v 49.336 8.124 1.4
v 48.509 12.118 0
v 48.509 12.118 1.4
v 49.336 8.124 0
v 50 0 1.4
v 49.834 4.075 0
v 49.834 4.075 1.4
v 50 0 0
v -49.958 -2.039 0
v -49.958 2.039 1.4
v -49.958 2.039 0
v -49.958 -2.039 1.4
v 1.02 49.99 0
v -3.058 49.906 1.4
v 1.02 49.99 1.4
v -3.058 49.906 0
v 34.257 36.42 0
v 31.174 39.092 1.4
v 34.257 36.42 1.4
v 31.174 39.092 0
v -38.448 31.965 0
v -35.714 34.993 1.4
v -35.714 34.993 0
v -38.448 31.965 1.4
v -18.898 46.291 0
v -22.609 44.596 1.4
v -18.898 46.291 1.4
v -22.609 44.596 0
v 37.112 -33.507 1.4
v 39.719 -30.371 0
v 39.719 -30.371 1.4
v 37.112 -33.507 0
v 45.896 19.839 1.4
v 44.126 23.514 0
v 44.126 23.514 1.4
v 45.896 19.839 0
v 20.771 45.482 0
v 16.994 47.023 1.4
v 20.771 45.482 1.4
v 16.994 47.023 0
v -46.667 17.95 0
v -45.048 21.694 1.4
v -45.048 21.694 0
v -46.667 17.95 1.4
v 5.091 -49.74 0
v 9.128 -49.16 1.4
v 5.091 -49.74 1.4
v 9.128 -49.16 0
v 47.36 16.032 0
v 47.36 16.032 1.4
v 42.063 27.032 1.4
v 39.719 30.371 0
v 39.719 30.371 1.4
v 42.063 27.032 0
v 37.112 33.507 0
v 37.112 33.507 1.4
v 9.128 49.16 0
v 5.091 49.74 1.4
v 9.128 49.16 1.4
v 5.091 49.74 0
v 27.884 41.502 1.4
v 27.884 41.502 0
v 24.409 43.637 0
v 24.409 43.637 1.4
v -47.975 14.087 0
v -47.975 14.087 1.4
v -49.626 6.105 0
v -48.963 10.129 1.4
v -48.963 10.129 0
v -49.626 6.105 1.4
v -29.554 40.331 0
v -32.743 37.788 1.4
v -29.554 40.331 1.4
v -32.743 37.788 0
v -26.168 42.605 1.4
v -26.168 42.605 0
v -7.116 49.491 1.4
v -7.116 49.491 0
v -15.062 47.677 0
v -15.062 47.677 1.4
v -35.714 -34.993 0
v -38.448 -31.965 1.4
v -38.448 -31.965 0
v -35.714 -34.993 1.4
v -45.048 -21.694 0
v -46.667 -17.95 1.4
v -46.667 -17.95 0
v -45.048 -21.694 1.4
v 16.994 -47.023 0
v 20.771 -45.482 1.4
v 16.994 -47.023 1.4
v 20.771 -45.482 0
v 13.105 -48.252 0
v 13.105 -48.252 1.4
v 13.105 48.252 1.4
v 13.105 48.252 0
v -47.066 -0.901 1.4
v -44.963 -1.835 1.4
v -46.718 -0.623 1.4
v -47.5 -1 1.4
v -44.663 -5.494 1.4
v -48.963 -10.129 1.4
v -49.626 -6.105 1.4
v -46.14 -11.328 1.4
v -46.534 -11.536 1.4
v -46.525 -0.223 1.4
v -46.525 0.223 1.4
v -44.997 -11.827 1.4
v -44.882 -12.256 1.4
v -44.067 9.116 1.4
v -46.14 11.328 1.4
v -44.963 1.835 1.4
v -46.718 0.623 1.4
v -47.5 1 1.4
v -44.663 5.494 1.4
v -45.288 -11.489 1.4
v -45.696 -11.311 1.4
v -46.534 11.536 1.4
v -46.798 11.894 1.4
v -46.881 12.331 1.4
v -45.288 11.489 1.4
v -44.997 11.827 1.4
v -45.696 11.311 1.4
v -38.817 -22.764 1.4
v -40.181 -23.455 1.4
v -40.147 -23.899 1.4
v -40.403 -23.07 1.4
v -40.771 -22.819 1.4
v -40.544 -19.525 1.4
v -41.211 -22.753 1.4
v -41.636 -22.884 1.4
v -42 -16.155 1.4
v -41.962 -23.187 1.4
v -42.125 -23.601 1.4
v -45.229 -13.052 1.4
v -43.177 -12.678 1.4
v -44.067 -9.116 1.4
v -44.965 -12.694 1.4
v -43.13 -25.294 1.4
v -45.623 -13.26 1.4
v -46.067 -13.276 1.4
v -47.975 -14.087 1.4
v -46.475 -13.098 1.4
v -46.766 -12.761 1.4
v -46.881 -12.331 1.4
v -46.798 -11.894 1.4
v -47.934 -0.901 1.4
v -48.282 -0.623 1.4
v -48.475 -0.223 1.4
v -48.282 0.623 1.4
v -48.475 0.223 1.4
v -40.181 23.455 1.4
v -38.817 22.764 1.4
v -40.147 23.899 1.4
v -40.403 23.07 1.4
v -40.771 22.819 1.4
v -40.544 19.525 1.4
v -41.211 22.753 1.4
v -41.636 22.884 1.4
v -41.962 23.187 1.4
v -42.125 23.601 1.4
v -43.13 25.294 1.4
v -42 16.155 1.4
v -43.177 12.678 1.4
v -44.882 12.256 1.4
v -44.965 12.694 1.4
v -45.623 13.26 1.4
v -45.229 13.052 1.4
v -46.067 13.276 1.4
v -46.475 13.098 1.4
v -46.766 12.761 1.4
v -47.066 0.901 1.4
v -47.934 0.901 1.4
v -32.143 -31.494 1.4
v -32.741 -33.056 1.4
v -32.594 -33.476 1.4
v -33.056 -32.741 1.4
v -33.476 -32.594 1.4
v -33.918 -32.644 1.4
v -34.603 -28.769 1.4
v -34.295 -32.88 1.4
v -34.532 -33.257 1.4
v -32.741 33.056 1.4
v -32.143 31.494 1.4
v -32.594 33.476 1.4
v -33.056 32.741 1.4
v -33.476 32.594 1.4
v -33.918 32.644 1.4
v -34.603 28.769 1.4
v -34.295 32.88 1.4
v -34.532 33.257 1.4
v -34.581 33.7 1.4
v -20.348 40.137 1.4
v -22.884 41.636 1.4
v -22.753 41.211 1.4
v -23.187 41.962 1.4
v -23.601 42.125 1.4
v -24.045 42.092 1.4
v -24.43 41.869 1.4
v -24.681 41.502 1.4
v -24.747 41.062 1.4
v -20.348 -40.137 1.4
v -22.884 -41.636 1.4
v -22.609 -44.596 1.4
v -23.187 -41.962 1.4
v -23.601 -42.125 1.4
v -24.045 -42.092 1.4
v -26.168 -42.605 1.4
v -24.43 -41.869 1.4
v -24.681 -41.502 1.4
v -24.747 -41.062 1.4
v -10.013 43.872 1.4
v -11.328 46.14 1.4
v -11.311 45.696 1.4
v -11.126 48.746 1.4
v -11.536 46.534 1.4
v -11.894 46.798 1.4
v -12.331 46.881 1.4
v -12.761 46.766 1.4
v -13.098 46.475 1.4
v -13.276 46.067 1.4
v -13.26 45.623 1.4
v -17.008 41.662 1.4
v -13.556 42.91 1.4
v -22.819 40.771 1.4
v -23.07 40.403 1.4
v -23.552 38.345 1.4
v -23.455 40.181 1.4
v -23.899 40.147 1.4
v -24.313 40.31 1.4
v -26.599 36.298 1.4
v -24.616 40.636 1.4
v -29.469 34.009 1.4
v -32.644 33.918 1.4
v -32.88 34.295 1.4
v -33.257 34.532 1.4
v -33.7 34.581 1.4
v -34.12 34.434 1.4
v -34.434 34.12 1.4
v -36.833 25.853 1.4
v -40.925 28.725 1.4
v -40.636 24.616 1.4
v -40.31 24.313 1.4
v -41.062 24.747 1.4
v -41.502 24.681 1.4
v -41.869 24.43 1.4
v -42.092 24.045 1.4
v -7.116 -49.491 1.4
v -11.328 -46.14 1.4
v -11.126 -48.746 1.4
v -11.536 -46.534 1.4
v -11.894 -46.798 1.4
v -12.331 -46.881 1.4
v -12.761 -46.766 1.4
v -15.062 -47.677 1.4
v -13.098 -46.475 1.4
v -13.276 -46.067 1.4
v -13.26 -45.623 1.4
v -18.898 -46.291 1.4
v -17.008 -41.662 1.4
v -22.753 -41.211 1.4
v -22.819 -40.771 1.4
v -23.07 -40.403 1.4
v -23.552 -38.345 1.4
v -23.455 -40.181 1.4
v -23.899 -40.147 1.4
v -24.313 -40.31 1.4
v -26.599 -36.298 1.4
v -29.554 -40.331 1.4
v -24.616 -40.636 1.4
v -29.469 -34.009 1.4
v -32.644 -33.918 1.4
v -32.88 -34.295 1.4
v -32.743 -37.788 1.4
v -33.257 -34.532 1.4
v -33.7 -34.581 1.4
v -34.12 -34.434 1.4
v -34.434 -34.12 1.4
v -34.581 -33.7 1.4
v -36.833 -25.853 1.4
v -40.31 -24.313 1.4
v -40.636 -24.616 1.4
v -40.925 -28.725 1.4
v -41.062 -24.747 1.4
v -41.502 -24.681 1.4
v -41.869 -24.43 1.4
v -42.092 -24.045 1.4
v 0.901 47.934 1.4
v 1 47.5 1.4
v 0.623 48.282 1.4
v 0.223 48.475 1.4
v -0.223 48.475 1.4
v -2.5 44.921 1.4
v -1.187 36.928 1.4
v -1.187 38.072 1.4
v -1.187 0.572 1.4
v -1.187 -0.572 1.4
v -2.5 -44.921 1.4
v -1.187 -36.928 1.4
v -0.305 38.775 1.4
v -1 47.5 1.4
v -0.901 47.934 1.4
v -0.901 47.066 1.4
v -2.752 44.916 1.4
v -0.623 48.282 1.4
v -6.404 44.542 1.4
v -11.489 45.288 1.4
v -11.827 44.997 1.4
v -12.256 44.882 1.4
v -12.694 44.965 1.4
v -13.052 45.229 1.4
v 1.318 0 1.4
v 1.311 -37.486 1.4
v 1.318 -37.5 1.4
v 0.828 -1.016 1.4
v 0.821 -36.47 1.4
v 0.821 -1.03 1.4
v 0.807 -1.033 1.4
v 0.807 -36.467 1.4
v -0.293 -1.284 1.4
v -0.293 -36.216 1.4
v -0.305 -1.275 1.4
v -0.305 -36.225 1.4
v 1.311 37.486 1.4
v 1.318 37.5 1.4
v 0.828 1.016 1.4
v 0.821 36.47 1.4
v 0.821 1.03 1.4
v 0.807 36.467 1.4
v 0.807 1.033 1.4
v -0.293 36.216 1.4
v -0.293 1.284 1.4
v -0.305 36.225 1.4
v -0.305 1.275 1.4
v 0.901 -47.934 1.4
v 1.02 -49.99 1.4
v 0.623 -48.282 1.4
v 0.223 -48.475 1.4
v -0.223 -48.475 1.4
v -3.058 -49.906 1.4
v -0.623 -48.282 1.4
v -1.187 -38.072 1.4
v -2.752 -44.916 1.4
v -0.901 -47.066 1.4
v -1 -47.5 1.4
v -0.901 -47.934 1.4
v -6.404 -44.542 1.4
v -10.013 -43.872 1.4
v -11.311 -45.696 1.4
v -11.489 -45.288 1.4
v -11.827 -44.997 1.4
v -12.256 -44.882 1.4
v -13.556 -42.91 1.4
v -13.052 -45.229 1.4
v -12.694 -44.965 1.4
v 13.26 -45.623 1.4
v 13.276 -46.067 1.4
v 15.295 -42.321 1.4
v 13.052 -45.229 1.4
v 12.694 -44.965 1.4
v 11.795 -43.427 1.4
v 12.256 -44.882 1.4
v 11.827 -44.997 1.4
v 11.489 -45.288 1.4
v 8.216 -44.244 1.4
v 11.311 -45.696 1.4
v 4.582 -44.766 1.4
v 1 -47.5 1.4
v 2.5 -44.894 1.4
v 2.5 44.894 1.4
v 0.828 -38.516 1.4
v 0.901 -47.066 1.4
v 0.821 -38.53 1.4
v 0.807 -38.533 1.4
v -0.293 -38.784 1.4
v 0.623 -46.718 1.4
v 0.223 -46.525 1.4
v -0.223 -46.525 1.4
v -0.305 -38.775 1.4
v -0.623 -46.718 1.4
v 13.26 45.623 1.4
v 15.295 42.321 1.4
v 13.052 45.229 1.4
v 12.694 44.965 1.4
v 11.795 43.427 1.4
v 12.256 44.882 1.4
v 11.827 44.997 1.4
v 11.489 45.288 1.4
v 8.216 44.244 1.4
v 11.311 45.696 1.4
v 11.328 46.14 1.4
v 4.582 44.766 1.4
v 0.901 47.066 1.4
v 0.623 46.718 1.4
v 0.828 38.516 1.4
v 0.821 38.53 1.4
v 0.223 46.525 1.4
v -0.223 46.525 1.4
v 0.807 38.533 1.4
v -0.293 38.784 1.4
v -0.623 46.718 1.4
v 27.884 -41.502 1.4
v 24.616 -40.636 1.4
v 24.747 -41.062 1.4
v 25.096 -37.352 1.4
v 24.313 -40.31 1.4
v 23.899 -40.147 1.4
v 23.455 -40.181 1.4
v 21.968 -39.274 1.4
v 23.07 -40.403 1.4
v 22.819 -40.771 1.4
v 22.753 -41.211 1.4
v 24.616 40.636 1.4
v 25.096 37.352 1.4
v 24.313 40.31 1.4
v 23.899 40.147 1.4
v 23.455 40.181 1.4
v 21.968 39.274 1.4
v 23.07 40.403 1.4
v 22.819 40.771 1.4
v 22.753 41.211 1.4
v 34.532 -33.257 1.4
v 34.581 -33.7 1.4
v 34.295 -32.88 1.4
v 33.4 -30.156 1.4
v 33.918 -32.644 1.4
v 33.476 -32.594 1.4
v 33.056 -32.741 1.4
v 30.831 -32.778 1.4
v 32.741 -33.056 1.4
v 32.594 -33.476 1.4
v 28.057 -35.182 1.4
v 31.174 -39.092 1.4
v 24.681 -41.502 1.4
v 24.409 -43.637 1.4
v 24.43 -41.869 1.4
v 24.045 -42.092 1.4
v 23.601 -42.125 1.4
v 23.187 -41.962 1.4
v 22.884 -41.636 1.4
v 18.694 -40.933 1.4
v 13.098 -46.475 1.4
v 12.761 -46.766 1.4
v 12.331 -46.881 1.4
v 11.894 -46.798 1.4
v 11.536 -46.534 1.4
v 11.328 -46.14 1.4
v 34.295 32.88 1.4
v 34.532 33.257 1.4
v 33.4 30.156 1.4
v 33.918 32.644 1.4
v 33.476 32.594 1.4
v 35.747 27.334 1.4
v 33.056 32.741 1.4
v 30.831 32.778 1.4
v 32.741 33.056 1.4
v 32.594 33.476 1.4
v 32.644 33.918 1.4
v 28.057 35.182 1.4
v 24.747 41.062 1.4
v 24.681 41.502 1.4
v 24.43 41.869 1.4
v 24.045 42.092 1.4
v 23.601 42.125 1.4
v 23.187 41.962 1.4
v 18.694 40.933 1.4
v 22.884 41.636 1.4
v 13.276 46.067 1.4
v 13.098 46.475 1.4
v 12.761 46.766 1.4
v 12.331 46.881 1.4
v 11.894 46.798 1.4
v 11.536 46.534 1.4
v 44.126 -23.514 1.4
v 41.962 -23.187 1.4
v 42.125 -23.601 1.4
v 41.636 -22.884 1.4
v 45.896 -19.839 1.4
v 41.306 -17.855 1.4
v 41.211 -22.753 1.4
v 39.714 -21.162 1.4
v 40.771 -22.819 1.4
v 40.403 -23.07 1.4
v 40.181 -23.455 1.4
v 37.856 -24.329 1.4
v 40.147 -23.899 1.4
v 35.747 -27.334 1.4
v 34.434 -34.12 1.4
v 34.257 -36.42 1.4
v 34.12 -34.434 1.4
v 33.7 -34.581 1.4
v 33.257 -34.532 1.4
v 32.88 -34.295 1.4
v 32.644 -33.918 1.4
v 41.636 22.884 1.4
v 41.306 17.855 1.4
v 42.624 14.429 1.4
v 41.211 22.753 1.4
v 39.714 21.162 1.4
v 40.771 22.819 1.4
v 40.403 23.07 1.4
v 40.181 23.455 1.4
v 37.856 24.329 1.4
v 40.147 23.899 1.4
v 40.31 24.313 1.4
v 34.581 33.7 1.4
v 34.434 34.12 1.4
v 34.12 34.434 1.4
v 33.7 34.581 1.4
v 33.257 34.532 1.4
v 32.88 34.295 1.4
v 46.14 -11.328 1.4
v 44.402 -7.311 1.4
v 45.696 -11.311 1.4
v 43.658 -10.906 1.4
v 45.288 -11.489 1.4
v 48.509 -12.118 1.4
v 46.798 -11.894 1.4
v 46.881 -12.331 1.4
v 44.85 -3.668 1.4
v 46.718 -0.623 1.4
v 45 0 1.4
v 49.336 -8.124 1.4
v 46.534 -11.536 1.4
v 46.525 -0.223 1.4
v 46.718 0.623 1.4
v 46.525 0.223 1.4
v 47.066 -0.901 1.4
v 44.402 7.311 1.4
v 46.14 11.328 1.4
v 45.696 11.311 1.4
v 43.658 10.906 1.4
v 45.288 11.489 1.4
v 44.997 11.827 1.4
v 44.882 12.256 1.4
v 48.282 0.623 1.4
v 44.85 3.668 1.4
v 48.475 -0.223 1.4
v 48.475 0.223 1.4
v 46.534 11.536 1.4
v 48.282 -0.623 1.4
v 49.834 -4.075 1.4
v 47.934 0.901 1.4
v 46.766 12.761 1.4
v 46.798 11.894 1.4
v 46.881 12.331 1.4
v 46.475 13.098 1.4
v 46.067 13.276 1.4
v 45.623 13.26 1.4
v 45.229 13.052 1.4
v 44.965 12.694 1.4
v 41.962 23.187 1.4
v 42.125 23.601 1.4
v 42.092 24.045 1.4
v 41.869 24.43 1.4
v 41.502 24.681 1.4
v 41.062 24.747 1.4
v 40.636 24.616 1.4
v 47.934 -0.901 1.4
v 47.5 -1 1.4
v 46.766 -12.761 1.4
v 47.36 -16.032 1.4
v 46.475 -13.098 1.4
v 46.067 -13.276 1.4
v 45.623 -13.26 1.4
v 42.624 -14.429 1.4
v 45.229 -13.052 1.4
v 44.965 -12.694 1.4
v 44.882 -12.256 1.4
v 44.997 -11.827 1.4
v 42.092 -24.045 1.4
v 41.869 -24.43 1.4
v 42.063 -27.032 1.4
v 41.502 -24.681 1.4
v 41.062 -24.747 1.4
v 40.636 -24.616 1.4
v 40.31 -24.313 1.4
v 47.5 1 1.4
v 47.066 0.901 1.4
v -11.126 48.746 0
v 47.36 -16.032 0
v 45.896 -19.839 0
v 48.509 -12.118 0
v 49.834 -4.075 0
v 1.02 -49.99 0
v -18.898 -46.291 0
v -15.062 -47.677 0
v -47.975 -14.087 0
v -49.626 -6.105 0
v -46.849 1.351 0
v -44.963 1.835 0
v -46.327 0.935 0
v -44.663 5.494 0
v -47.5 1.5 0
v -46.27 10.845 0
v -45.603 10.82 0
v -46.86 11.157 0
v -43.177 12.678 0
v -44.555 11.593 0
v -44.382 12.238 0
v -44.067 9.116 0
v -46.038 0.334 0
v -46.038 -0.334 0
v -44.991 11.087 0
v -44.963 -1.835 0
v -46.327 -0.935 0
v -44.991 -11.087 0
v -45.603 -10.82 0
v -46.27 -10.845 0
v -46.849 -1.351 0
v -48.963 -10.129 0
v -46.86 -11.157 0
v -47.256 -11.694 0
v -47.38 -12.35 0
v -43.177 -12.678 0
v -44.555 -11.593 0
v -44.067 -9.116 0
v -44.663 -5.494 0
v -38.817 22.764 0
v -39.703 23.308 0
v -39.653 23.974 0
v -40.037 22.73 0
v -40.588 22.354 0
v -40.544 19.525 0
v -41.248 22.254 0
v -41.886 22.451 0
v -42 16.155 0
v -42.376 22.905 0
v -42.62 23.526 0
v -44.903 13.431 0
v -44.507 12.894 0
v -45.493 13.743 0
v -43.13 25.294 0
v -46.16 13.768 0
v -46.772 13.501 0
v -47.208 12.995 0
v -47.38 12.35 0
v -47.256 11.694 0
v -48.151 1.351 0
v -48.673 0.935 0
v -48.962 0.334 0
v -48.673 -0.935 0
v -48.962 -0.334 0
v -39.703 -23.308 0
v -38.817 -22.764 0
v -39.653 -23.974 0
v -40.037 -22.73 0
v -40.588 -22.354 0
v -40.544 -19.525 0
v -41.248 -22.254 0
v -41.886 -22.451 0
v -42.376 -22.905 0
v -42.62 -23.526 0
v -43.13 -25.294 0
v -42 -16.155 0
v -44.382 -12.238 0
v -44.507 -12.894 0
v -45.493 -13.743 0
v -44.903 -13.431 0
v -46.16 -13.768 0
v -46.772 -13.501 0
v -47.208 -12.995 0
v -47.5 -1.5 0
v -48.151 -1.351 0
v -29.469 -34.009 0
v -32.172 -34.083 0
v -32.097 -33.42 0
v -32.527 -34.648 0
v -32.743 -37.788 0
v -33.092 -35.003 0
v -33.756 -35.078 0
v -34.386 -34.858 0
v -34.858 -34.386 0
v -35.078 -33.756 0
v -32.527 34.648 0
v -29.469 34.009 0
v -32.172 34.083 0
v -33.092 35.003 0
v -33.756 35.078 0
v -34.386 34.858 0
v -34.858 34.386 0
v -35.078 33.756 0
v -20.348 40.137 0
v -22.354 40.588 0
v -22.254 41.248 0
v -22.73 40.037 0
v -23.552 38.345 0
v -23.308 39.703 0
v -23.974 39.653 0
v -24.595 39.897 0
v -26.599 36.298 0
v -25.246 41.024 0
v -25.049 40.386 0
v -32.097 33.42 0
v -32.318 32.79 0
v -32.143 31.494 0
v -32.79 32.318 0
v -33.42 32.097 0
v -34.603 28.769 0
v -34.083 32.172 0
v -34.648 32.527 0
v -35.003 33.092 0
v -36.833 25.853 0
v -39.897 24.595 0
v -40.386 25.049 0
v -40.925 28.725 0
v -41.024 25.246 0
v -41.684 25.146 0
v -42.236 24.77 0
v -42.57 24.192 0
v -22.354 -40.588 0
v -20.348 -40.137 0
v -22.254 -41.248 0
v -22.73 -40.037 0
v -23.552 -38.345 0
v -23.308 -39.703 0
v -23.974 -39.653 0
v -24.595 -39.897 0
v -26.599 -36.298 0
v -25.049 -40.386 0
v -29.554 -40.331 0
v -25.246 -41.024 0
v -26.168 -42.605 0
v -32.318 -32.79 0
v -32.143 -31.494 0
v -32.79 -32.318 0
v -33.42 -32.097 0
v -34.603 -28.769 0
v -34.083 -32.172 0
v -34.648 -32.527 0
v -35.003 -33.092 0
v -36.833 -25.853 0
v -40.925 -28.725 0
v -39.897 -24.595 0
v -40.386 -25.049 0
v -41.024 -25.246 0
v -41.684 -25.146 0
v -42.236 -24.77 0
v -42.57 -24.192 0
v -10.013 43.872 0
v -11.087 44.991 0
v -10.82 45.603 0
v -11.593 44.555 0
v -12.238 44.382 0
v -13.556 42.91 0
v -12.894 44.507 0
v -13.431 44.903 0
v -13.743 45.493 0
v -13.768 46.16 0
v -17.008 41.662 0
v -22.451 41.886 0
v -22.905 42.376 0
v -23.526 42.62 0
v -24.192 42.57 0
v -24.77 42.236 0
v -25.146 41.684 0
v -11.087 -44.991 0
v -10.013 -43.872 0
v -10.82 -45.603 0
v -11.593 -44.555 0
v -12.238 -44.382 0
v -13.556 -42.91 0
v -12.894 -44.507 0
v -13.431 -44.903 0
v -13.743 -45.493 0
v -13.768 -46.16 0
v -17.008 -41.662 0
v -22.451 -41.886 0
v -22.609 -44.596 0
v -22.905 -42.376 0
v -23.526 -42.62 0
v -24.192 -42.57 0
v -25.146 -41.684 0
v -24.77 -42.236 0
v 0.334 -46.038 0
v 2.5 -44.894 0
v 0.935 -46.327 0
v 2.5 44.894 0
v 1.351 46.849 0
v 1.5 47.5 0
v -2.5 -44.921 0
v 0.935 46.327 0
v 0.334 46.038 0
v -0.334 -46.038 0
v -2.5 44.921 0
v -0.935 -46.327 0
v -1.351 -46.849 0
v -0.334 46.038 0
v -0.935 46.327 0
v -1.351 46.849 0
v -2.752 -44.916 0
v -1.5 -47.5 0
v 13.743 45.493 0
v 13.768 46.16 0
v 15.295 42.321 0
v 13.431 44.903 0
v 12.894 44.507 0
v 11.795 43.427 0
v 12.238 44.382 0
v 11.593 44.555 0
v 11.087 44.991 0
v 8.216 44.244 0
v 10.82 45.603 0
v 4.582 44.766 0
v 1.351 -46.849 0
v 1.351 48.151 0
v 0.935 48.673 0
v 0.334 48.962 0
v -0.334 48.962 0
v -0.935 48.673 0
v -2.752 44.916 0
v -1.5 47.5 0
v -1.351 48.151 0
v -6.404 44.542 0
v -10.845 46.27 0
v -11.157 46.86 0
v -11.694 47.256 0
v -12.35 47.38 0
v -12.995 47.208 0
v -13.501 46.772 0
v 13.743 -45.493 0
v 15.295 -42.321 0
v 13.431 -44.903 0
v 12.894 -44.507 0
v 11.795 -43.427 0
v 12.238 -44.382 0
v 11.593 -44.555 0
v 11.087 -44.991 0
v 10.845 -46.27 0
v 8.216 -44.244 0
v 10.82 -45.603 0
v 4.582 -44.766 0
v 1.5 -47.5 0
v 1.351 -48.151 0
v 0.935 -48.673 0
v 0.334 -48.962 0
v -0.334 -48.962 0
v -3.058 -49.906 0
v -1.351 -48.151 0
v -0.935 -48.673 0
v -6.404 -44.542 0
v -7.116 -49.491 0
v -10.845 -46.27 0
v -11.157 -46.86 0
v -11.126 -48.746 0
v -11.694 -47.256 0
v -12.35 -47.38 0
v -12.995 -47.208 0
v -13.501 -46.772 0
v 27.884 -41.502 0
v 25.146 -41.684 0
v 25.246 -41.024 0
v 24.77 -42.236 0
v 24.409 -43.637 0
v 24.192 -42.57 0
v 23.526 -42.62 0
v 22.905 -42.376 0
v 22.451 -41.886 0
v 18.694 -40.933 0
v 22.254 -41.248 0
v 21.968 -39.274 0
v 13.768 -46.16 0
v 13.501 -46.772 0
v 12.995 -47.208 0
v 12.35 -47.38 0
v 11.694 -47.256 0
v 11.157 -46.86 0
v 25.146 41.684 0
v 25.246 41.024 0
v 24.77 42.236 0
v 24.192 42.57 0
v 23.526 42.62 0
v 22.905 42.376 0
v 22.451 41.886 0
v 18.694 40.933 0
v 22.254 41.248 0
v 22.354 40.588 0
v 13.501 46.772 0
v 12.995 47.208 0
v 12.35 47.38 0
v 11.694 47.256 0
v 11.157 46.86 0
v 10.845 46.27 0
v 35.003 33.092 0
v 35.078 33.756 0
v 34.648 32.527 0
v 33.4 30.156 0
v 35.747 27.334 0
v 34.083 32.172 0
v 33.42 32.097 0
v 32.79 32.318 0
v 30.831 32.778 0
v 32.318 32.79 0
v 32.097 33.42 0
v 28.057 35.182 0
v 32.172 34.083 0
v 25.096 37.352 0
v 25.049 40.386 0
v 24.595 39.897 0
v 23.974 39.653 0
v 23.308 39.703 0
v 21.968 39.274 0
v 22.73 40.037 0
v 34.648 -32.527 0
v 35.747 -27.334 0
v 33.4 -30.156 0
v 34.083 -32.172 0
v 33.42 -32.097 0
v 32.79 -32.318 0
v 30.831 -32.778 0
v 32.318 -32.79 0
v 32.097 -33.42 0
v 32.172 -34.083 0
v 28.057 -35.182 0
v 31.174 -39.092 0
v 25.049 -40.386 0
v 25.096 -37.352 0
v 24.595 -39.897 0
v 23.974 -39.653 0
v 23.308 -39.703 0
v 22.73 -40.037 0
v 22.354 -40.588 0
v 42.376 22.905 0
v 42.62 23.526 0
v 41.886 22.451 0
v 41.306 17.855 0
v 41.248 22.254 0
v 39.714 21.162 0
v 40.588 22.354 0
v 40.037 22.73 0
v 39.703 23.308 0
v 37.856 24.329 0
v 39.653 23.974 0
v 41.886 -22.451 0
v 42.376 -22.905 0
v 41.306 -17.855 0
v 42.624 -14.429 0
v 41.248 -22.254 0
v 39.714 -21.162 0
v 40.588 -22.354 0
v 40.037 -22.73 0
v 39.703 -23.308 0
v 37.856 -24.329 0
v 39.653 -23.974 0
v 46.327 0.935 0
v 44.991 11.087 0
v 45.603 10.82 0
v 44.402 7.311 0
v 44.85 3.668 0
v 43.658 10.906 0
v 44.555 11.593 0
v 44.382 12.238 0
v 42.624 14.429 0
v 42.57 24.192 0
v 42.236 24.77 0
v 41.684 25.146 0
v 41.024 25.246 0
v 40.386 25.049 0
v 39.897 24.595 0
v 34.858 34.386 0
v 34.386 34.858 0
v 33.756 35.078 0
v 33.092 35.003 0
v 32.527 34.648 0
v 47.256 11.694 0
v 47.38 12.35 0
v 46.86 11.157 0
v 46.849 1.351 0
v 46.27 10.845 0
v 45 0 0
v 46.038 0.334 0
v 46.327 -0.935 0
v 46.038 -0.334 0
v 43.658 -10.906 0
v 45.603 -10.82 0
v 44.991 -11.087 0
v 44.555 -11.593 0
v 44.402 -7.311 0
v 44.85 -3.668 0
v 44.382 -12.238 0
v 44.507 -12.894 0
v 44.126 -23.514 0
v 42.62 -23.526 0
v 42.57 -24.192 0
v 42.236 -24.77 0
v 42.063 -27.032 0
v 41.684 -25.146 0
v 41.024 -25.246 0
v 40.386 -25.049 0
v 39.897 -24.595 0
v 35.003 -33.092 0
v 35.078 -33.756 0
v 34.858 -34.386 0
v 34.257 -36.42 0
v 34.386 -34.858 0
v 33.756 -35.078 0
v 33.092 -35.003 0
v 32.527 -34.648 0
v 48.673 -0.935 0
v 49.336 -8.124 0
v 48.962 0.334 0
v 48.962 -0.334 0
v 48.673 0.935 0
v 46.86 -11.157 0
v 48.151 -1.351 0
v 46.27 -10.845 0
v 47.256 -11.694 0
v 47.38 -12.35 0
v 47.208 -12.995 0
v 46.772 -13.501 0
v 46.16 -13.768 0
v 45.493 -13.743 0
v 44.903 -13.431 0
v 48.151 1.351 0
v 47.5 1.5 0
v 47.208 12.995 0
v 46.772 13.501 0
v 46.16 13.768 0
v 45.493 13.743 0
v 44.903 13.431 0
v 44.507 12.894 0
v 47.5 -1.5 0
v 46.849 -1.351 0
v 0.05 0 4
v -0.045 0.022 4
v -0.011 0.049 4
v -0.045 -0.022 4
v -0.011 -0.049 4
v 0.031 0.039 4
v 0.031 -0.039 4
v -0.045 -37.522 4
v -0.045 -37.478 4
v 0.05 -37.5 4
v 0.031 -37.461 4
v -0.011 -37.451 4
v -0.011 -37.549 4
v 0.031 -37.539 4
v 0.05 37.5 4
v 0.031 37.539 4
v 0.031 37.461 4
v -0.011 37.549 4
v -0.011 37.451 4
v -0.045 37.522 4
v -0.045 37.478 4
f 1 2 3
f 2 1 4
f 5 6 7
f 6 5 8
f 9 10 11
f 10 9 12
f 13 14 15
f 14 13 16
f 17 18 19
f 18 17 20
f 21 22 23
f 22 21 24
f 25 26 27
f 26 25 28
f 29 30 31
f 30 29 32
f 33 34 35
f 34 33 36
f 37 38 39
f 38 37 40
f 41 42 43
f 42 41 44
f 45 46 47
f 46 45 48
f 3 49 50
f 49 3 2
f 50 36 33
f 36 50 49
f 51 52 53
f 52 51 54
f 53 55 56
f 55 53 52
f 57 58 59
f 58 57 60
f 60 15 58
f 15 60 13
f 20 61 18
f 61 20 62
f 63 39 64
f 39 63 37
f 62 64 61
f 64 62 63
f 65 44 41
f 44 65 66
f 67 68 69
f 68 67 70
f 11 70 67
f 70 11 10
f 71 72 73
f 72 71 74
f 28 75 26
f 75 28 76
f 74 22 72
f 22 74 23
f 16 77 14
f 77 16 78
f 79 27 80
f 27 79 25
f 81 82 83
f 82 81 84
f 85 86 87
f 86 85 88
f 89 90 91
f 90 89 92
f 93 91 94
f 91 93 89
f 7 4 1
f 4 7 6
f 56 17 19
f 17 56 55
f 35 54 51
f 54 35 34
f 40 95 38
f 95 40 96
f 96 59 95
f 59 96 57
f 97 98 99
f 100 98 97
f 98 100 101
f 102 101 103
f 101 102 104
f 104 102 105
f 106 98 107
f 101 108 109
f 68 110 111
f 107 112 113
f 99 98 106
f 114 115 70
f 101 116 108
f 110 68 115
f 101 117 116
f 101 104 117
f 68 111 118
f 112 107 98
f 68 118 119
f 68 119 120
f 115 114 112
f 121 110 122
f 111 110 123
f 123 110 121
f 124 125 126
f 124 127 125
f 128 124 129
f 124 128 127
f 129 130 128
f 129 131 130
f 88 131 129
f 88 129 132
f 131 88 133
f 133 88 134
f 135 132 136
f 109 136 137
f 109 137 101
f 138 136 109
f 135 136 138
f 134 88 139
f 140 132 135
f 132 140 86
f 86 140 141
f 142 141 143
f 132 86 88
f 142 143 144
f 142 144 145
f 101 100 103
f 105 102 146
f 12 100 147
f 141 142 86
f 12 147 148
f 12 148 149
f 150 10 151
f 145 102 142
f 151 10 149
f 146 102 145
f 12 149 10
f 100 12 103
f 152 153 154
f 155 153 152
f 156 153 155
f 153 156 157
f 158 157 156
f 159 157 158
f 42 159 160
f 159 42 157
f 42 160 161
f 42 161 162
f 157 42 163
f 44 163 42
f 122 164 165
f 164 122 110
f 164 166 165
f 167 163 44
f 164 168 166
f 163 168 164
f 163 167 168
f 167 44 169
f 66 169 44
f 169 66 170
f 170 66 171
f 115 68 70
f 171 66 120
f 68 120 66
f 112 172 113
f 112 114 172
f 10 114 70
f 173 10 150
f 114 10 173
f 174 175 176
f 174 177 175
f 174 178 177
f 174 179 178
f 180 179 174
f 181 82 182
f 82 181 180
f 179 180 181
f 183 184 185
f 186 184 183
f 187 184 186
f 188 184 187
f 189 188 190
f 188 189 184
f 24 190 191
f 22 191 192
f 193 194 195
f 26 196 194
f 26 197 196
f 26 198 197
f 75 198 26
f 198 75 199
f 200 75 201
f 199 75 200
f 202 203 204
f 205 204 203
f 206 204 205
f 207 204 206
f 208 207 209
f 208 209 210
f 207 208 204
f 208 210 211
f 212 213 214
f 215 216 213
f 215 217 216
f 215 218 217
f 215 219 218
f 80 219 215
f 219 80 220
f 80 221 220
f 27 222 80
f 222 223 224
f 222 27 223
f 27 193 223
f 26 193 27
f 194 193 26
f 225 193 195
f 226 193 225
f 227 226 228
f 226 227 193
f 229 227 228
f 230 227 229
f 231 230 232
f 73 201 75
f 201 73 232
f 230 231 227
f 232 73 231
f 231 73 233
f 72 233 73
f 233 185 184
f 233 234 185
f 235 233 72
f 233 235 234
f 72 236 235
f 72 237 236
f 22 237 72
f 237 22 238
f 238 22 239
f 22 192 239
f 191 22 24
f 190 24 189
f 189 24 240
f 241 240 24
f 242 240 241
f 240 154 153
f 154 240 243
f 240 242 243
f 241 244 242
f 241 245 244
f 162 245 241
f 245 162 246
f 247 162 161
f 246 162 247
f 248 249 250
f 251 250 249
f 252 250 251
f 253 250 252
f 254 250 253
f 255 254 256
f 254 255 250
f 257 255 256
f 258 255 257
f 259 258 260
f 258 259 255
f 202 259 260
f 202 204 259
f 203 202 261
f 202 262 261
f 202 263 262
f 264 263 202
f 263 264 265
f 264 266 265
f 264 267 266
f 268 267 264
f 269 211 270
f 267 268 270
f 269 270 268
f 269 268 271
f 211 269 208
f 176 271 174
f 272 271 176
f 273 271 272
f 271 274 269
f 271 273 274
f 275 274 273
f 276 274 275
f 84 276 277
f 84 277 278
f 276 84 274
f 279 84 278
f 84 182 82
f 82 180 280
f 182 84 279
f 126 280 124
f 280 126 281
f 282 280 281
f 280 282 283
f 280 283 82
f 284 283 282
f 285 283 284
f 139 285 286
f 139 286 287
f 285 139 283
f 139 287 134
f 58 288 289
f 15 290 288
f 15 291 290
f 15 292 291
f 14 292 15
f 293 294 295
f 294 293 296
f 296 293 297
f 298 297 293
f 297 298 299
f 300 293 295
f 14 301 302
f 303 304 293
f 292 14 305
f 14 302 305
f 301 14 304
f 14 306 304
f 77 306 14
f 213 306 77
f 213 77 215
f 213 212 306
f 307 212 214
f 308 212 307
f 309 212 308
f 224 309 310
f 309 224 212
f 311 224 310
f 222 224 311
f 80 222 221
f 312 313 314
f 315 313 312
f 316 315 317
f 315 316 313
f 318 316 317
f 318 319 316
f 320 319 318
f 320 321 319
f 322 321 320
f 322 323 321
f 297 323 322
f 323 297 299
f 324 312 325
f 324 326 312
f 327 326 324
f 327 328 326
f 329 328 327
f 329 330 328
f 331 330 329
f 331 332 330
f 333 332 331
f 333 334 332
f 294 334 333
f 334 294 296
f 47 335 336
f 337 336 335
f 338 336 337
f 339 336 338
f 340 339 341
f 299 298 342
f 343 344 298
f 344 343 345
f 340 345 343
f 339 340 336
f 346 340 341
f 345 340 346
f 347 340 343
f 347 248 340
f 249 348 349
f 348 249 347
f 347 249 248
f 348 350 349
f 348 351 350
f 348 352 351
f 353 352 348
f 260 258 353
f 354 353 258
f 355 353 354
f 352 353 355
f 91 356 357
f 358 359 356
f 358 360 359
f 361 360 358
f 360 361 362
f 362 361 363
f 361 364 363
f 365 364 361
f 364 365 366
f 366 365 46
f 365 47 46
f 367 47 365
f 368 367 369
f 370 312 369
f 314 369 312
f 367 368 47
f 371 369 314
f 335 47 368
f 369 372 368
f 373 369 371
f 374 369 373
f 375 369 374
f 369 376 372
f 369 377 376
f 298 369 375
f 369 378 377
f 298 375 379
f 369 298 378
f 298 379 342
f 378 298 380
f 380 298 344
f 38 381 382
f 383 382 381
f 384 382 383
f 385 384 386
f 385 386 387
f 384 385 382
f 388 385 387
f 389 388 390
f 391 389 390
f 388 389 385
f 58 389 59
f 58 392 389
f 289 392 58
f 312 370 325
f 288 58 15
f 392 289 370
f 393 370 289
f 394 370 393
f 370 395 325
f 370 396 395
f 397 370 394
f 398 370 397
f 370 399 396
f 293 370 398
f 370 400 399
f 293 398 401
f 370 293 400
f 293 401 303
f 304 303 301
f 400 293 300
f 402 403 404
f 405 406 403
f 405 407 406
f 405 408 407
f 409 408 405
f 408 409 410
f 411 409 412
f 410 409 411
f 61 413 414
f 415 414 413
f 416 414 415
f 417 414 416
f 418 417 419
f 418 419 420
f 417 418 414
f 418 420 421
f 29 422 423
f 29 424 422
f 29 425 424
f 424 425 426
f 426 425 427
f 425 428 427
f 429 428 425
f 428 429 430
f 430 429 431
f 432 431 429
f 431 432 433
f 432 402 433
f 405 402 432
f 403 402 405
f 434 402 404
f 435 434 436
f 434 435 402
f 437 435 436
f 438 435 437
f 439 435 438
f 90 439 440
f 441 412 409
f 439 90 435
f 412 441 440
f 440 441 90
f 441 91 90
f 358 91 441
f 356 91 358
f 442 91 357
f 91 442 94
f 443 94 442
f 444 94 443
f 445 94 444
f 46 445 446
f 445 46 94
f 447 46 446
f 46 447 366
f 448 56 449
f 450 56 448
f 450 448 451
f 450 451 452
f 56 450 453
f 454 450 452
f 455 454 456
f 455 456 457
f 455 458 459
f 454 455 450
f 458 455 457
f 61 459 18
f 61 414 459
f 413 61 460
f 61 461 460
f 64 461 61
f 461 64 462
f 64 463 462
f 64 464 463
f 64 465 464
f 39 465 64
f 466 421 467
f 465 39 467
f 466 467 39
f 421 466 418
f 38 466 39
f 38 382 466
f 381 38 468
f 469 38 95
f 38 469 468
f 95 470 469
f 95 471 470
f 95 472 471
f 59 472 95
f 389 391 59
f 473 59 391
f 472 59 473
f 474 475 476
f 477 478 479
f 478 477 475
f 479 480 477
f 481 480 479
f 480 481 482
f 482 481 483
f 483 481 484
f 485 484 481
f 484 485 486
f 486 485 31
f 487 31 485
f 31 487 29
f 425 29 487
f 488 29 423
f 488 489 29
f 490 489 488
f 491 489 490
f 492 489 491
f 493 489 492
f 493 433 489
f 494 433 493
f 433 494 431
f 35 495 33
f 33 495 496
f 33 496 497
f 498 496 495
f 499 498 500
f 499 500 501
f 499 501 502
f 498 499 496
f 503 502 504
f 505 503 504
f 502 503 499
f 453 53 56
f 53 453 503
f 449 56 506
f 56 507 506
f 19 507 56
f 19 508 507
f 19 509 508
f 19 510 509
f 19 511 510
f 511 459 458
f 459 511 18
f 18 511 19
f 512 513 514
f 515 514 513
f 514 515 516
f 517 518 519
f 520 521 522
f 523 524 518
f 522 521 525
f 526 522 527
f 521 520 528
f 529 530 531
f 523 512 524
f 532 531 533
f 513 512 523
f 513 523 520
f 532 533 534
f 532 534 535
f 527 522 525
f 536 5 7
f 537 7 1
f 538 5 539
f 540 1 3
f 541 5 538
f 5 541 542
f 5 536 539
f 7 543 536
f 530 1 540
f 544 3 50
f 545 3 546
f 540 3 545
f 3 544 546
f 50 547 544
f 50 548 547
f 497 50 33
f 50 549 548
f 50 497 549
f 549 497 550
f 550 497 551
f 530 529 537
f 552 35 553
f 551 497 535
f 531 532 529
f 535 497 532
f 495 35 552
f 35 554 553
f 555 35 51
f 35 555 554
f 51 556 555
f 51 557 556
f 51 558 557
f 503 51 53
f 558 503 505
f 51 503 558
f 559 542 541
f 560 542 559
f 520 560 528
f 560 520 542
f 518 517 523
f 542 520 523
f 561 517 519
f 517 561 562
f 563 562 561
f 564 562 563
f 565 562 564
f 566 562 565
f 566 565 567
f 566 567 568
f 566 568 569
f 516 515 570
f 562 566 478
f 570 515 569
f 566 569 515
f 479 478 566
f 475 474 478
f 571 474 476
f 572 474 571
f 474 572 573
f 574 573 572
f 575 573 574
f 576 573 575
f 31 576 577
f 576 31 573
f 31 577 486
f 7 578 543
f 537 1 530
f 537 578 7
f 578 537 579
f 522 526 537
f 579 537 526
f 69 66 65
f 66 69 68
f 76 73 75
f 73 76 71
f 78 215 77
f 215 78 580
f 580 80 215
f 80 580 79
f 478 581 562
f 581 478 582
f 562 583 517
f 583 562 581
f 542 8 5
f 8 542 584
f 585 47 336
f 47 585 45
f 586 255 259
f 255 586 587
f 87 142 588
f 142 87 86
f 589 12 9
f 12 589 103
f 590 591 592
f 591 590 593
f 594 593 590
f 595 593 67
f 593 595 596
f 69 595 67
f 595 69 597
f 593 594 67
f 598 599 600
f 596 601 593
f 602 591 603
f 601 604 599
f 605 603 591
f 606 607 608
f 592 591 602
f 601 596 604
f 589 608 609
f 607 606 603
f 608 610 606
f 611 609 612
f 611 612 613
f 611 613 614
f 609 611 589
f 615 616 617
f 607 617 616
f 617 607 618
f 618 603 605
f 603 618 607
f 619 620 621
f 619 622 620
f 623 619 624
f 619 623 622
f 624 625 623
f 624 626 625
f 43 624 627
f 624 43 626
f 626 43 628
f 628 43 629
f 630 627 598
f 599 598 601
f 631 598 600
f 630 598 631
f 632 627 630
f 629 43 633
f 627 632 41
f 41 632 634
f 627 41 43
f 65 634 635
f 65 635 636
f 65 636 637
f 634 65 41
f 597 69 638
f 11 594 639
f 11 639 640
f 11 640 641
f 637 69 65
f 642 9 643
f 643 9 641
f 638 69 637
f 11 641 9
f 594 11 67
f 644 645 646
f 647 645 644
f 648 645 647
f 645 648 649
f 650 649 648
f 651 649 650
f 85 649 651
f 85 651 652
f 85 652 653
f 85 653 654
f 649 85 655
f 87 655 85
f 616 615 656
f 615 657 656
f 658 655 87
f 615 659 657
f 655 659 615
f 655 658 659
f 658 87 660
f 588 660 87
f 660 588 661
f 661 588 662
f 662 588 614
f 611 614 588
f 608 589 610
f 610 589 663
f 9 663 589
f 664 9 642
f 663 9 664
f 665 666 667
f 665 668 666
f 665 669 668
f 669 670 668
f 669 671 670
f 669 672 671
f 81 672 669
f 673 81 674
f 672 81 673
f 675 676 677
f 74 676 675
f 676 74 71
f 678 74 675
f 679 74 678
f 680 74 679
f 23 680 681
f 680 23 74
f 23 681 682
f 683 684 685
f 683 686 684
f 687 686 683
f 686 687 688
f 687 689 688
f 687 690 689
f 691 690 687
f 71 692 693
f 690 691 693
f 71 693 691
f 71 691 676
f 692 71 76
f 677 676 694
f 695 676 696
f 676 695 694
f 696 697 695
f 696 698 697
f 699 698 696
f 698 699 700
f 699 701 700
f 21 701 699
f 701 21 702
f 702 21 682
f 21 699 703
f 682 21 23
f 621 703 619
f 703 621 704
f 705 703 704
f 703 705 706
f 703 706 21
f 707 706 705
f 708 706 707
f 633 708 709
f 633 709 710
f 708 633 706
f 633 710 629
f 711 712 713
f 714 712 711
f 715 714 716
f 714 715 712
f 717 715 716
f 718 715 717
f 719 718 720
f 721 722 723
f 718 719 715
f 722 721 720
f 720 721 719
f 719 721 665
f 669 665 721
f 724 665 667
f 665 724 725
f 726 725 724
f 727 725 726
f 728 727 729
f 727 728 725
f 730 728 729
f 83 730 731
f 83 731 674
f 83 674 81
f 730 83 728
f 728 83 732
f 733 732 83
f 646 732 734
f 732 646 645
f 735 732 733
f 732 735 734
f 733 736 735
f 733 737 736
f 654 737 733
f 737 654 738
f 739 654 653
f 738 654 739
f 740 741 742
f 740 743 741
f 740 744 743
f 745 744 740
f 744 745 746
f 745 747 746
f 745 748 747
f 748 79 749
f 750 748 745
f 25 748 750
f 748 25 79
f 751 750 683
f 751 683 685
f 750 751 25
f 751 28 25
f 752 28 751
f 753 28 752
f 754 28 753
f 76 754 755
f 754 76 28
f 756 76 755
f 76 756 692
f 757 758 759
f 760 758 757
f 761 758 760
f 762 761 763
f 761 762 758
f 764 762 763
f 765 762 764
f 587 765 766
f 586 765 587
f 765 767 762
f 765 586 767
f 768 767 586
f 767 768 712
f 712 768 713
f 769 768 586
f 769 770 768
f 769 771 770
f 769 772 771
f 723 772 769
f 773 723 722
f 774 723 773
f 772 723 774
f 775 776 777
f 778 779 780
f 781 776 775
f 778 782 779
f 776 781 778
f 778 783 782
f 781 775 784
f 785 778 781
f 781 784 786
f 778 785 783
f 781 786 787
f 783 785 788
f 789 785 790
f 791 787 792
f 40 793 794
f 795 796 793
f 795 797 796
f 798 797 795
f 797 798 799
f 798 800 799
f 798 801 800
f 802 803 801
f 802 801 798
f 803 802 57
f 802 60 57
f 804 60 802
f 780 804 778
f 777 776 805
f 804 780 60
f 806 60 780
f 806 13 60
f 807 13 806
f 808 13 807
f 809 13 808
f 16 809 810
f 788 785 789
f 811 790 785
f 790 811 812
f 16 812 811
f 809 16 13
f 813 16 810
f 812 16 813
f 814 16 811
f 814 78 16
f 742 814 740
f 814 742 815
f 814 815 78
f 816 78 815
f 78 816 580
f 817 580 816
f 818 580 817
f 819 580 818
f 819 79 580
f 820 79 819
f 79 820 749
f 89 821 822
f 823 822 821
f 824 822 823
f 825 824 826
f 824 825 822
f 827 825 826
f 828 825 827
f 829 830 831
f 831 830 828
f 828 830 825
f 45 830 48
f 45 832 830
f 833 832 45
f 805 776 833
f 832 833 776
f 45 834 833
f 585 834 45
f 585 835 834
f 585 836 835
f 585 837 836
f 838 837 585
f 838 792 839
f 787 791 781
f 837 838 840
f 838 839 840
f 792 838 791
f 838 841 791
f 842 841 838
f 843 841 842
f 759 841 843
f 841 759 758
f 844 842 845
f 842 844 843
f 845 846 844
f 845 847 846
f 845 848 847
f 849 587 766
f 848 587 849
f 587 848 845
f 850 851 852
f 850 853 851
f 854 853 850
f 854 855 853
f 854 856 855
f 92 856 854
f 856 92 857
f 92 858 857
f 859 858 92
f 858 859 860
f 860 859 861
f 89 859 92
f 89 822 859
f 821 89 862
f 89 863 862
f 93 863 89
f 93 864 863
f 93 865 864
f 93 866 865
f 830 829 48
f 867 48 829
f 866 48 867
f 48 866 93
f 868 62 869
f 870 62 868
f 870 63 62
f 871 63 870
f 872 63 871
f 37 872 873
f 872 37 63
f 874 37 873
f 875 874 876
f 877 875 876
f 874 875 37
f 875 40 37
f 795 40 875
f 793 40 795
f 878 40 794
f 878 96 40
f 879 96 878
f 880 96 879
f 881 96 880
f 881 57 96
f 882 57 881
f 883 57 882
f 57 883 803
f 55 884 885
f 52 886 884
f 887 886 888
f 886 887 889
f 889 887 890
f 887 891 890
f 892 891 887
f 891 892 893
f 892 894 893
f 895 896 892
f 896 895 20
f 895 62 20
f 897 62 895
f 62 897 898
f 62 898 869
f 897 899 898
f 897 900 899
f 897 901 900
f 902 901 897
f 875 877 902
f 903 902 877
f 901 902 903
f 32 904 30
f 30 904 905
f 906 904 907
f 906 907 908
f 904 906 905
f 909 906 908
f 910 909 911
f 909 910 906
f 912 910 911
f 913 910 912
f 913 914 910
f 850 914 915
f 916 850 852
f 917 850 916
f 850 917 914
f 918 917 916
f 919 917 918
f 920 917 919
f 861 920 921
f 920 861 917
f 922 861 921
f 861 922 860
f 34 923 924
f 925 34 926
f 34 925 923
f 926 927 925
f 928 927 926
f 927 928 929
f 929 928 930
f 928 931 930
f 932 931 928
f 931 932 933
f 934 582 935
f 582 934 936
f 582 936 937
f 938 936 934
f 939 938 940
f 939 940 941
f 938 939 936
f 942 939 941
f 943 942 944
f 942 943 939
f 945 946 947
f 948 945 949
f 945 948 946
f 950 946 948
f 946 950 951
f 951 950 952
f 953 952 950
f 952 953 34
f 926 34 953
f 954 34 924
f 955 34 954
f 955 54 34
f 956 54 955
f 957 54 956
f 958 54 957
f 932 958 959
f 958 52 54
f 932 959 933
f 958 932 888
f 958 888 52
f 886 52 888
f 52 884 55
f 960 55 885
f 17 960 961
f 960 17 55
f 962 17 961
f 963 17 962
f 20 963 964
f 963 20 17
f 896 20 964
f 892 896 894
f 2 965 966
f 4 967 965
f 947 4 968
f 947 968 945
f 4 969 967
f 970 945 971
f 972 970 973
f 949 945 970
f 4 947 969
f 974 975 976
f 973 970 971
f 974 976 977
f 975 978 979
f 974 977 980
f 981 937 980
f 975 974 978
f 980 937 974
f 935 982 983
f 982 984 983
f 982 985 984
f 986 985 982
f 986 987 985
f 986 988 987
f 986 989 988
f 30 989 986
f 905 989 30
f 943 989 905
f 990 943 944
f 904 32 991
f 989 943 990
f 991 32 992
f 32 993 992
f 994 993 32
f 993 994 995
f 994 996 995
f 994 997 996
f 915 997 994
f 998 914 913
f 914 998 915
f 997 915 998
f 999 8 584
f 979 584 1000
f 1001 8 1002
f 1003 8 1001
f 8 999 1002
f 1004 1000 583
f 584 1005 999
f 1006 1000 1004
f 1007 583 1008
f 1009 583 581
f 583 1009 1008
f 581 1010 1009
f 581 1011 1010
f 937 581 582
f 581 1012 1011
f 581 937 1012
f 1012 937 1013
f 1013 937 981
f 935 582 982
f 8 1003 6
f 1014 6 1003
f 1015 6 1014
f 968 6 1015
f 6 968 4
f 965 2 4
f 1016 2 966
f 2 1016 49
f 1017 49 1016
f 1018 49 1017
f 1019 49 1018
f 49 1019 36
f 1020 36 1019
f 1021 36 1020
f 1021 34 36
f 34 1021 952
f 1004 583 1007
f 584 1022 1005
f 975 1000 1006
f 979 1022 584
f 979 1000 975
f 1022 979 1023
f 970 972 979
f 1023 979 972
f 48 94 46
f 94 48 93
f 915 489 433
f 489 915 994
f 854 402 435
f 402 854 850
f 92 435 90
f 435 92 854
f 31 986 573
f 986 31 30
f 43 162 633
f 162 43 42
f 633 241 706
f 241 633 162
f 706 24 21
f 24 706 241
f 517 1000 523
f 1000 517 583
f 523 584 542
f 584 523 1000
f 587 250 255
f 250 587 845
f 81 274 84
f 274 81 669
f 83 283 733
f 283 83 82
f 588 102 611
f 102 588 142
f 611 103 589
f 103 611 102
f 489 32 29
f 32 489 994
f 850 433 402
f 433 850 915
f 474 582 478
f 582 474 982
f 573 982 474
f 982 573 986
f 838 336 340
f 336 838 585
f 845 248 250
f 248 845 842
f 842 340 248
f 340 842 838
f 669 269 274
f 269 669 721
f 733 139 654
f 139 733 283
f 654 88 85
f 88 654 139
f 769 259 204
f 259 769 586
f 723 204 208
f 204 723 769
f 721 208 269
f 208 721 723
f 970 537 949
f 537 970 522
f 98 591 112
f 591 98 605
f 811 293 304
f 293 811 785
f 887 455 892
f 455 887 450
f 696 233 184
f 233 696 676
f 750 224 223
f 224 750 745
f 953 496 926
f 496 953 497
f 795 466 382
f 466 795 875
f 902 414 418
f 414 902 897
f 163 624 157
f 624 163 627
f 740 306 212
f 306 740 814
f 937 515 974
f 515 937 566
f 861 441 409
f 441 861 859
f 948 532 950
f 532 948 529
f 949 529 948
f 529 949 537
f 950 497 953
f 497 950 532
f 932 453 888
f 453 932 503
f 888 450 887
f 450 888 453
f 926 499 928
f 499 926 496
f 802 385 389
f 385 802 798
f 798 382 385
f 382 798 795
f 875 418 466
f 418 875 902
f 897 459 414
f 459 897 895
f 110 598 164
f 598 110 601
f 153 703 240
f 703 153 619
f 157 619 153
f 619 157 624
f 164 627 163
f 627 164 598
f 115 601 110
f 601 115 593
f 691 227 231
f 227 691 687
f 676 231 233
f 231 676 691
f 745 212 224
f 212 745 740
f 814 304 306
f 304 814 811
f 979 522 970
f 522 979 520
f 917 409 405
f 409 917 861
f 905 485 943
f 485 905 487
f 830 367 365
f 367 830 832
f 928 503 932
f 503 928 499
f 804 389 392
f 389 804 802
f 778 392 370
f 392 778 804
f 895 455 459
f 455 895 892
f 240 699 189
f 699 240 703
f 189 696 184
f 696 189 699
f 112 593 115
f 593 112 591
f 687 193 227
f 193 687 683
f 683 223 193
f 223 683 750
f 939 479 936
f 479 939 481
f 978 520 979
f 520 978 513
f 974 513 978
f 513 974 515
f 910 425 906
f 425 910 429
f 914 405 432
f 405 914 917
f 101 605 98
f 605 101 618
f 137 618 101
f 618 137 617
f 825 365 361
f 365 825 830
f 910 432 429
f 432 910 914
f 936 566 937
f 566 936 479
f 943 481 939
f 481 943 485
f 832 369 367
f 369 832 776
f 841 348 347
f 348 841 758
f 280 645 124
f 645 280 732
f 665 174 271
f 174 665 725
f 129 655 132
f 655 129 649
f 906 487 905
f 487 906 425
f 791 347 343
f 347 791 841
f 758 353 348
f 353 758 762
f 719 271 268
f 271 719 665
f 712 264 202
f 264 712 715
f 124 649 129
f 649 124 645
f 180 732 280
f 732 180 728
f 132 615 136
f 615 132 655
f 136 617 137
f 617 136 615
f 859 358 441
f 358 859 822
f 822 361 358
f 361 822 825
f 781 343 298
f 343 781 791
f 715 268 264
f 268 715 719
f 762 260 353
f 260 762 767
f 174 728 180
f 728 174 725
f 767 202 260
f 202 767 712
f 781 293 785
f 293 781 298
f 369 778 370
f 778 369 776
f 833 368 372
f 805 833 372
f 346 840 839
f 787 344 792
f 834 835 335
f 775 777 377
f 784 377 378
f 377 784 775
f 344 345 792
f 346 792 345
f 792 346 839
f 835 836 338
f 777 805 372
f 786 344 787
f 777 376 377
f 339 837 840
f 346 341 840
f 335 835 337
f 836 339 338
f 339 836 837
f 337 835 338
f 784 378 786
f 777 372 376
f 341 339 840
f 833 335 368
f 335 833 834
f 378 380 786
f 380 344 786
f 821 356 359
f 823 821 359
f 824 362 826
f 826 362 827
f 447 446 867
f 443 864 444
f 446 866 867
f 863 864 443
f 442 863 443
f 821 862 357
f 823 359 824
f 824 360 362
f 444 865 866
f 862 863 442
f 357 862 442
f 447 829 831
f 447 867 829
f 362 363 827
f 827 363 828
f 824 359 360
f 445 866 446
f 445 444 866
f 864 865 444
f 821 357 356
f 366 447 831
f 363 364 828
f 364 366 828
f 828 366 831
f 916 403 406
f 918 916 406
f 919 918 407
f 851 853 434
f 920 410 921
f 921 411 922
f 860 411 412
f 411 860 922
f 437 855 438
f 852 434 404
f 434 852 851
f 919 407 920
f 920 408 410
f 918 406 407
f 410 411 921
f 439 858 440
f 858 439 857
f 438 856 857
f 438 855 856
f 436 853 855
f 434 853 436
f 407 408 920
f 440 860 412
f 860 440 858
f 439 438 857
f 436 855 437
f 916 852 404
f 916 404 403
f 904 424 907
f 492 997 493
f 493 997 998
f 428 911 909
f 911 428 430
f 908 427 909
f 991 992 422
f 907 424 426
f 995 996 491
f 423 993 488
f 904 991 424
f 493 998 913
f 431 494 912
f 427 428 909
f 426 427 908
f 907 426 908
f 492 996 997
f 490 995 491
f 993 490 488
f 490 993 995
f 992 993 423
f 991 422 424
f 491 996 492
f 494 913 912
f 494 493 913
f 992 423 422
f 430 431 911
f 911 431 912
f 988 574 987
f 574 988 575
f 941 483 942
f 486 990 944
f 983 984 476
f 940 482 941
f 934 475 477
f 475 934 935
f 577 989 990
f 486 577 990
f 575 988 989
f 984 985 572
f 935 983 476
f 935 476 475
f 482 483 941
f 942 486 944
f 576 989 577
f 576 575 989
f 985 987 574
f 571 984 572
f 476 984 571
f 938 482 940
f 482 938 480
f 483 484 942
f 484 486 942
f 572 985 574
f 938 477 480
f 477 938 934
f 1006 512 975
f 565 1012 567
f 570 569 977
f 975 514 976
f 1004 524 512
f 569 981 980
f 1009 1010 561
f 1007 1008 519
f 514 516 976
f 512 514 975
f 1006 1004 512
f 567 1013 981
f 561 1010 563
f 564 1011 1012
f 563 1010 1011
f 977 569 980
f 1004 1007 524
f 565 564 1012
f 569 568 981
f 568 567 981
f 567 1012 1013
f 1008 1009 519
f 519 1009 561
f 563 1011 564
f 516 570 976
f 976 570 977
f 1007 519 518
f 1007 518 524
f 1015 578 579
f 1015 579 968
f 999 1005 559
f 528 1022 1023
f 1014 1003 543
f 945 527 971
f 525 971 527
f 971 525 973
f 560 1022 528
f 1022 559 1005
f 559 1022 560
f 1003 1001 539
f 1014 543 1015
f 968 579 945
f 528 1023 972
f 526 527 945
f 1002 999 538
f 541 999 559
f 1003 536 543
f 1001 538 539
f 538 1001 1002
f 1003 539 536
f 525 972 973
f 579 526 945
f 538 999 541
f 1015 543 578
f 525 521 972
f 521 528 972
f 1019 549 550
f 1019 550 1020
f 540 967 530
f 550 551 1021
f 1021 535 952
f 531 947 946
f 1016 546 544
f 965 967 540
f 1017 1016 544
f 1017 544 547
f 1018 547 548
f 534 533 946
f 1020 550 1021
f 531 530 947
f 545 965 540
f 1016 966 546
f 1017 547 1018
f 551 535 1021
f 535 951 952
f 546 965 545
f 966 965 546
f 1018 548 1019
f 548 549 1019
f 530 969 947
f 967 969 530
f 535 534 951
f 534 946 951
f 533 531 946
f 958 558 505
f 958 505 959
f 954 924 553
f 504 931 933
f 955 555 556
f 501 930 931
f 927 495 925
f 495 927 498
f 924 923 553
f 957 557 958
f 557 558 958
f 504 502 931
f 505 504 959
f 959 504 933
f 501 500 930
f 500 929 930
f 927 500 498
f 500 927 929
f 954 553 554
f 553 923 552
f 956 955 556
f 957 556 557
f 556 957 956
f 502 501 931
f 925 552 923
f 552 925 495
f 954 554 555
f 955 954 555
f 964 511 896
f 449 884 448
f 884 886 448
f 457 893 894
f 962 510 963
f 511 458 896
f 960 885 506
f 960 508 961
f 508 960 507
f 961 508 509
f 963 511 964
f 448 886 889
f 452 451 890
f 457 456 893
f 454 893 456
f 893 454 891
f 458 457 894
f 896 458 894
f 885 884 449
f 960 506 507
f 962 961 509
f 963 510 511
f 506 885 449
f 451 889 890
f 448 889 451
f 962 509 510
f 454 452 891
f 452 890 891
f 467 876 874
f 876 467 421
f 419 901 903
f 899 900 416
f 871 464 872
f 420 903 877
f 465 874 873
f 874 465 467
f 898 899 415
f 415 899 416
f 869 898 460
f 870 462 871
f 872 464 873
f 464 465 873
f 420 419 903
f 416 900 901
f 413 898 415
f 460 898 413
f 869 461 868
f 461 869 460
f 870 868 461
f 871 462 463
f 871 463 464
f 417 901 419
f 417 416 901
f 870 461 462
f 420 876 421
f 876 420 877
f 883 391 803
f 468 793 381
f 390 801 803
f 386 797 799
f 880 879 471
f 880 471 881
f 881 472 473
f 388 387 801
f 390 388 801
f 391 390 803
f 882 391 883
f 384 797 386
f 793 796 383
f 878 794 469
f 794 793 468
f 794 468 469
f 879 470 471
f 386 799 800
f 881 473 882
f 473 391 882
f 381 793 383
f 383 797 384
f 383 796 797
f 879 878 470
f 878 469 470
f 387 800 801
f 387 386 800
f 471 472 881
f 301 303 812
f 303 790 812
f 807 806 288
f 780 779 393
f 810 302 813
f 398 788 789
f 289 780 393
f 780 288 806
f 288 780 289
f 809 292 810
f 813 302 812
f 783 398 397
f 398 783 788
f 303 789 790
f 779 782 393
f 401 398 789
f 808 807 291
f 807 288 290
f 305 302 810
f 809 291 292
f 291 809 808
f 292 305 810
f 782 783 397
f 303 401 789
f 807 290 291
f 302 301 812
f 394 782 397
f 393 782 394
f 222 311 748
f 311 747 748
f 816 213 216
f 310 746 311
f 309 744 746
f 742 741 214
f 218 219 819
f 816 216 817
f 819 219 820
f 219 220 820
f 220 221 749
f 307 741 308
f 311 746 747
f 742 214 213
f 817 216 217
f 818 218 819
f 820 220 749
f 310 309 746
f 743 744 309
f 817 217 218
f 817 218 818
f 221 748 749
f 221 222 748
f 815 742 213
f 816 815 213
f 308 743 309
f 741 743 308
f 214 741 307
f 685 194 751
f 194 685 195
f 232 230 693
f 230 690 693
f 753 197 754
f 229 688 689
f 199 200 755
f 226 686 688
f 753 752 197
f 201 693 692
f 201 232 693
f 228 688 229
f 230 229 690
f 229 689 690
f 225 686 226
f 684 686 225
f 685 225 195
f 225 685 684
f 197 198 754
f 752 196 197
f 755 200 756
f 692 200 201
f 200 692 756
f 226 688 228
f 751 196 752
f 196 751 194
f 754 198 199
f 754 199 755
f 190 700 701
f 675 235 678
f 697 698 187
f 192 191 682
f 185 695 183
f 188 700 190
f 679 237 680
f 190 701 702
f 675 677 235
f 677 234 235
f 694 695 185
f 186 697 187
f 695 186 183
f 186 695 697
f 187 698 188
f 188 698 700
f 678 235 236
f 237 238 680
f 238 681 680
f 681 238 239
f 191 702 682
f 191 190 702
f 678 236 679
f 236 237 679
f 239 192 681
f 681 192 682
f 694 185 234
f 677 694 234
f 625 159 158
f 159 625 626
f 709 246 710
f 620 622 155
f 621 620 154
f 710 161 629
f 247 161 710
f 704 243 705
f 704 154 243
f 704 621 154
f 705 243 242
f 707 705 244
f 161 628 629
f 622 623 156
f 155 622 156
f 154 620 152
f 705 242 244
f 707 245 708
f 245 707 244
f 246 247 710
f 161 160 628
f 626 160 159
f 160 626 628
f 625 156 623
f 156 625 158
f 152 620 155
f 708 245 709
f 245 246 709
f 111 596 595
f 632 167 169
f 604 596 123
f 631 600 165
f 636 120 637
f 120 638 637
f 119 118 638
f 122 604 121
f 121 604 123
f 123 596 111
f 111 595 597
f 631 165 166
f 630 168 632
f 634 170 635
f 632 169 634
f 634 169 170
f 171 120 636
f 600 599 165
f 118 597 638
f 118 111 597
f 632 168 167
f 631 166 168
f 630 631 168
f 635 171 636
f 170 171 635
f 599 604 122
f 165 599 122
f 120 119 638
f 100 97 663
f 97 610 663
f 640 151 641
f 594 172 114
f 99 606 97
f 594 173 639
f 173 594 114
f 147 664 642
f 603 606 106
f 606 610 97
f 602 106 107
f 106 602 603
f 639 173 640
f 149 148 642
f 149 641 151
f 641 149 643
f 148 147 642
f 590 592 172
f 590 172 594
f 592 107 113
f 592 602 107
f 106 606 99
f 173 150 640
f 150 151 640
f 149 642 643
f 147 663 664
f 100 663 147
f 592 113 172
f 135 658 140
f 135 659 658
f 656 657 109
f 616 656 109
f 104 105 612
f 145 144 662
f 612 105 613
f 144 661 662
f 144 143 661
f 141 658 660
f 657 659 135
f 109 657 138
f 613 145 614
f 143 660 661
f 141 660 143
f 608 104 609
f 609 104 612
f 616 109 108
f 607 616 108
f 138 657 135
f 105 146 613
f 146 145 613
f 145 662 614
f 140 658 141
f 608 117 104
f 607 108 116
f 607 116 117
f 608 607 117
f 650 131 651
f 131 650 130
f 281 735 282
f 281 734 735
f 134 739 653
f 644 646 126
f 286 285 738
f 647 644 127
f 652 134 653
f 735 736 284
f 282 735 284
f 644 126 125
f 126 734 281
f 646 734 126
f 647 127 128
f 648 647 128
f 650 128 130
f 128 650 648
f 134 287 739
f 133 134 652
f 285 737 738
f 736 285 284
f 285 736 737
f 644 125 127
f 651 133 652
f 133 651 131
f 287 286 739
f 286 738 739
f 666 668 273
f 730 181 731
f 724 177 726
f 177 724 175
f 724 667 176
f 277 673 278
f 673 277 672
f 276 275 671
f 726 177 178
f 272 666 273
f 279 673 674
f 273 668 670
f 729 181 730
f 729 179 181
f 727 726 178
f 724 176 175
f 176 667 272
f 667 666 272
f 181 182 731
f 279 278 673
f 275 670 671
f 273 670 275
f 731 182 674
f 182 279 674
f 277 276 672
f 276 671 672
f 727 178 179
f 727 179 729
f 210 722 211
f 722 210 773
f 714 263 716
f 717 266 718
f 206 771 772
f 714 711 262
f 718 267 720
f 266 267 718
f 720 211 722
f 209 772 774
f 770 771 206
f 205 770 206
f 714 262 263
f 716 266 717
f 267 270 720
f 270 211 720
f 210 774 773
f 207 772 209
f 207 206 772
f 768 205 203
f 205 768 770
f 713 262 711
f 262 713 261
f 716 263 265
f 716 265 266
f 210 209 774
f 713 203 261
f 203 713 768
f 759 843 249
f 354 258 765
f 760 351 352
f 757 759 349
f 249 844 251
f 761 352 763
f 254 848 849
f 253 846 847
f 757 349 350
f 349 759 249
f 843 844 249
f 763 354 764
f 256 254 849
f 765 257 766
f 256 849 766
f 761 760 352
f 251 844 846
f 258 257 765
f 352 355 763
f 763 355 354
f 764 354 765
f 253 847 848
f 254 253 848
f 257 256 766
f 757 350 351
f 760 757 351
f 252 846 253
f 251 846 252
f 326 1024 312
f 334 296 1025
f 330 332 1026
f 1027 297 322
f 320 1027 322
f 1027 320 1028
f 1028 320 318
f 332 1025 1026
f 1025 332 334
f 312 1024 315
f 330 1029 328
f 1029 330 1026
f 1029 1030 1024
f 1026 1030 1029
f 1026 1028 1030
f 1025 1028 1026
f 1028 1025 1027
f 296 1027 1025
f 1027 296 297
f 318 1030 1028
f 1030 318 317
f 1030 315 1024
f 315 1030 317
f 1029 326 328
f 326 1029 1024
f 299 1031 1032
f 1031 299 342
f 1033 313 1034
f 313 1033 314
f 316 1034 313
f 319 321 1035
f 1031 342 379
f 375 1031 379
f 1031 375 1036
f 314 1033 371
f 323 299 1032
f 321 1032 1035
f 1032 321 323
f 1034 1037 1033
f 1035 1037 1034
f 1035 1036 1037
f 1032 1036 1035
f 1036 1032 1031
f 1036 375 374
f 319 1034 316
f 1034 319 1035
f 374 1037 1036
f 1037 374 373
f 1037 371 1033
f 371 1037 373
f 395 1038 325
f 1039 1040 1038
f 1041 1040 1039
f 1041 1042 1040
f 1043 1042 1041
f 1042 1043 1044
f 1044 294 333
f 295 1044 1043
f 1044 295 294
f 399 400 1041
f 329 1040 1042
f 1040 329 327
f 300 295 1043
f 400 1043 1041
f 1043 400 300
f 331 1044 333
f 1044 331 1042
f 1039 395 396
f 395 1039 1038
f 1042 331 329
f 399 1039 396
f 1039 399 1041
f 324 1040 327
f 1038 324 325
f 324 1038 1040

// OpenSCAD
h=0.35*4;



difference()
{
    union()
    {
        difference()
        {
            cylinder(d=100,h=h,$fn=77);
            cylinder(d=90,h=h,$fn=77);
        }
        translate([-5/2,-95/2,0])
        cube([5,95,h]);
    }
    
    for(i=[0:360/3/2/2/2:360])
    {
        rotate([0,0,i])
        translate([0,-95/2,0])
        #cylinder(d1=3,d2=2,h=h,$fn=14);
    }
}


cylinder(d1=4,d2=0.1,h=4);

translate([0,-95/2+10,0])
cylinder(d1=4,d2=0.1,h=4);
translate([0,+95/2-10,0])
cylinder(d1=4,d2=0.1,h=4);
